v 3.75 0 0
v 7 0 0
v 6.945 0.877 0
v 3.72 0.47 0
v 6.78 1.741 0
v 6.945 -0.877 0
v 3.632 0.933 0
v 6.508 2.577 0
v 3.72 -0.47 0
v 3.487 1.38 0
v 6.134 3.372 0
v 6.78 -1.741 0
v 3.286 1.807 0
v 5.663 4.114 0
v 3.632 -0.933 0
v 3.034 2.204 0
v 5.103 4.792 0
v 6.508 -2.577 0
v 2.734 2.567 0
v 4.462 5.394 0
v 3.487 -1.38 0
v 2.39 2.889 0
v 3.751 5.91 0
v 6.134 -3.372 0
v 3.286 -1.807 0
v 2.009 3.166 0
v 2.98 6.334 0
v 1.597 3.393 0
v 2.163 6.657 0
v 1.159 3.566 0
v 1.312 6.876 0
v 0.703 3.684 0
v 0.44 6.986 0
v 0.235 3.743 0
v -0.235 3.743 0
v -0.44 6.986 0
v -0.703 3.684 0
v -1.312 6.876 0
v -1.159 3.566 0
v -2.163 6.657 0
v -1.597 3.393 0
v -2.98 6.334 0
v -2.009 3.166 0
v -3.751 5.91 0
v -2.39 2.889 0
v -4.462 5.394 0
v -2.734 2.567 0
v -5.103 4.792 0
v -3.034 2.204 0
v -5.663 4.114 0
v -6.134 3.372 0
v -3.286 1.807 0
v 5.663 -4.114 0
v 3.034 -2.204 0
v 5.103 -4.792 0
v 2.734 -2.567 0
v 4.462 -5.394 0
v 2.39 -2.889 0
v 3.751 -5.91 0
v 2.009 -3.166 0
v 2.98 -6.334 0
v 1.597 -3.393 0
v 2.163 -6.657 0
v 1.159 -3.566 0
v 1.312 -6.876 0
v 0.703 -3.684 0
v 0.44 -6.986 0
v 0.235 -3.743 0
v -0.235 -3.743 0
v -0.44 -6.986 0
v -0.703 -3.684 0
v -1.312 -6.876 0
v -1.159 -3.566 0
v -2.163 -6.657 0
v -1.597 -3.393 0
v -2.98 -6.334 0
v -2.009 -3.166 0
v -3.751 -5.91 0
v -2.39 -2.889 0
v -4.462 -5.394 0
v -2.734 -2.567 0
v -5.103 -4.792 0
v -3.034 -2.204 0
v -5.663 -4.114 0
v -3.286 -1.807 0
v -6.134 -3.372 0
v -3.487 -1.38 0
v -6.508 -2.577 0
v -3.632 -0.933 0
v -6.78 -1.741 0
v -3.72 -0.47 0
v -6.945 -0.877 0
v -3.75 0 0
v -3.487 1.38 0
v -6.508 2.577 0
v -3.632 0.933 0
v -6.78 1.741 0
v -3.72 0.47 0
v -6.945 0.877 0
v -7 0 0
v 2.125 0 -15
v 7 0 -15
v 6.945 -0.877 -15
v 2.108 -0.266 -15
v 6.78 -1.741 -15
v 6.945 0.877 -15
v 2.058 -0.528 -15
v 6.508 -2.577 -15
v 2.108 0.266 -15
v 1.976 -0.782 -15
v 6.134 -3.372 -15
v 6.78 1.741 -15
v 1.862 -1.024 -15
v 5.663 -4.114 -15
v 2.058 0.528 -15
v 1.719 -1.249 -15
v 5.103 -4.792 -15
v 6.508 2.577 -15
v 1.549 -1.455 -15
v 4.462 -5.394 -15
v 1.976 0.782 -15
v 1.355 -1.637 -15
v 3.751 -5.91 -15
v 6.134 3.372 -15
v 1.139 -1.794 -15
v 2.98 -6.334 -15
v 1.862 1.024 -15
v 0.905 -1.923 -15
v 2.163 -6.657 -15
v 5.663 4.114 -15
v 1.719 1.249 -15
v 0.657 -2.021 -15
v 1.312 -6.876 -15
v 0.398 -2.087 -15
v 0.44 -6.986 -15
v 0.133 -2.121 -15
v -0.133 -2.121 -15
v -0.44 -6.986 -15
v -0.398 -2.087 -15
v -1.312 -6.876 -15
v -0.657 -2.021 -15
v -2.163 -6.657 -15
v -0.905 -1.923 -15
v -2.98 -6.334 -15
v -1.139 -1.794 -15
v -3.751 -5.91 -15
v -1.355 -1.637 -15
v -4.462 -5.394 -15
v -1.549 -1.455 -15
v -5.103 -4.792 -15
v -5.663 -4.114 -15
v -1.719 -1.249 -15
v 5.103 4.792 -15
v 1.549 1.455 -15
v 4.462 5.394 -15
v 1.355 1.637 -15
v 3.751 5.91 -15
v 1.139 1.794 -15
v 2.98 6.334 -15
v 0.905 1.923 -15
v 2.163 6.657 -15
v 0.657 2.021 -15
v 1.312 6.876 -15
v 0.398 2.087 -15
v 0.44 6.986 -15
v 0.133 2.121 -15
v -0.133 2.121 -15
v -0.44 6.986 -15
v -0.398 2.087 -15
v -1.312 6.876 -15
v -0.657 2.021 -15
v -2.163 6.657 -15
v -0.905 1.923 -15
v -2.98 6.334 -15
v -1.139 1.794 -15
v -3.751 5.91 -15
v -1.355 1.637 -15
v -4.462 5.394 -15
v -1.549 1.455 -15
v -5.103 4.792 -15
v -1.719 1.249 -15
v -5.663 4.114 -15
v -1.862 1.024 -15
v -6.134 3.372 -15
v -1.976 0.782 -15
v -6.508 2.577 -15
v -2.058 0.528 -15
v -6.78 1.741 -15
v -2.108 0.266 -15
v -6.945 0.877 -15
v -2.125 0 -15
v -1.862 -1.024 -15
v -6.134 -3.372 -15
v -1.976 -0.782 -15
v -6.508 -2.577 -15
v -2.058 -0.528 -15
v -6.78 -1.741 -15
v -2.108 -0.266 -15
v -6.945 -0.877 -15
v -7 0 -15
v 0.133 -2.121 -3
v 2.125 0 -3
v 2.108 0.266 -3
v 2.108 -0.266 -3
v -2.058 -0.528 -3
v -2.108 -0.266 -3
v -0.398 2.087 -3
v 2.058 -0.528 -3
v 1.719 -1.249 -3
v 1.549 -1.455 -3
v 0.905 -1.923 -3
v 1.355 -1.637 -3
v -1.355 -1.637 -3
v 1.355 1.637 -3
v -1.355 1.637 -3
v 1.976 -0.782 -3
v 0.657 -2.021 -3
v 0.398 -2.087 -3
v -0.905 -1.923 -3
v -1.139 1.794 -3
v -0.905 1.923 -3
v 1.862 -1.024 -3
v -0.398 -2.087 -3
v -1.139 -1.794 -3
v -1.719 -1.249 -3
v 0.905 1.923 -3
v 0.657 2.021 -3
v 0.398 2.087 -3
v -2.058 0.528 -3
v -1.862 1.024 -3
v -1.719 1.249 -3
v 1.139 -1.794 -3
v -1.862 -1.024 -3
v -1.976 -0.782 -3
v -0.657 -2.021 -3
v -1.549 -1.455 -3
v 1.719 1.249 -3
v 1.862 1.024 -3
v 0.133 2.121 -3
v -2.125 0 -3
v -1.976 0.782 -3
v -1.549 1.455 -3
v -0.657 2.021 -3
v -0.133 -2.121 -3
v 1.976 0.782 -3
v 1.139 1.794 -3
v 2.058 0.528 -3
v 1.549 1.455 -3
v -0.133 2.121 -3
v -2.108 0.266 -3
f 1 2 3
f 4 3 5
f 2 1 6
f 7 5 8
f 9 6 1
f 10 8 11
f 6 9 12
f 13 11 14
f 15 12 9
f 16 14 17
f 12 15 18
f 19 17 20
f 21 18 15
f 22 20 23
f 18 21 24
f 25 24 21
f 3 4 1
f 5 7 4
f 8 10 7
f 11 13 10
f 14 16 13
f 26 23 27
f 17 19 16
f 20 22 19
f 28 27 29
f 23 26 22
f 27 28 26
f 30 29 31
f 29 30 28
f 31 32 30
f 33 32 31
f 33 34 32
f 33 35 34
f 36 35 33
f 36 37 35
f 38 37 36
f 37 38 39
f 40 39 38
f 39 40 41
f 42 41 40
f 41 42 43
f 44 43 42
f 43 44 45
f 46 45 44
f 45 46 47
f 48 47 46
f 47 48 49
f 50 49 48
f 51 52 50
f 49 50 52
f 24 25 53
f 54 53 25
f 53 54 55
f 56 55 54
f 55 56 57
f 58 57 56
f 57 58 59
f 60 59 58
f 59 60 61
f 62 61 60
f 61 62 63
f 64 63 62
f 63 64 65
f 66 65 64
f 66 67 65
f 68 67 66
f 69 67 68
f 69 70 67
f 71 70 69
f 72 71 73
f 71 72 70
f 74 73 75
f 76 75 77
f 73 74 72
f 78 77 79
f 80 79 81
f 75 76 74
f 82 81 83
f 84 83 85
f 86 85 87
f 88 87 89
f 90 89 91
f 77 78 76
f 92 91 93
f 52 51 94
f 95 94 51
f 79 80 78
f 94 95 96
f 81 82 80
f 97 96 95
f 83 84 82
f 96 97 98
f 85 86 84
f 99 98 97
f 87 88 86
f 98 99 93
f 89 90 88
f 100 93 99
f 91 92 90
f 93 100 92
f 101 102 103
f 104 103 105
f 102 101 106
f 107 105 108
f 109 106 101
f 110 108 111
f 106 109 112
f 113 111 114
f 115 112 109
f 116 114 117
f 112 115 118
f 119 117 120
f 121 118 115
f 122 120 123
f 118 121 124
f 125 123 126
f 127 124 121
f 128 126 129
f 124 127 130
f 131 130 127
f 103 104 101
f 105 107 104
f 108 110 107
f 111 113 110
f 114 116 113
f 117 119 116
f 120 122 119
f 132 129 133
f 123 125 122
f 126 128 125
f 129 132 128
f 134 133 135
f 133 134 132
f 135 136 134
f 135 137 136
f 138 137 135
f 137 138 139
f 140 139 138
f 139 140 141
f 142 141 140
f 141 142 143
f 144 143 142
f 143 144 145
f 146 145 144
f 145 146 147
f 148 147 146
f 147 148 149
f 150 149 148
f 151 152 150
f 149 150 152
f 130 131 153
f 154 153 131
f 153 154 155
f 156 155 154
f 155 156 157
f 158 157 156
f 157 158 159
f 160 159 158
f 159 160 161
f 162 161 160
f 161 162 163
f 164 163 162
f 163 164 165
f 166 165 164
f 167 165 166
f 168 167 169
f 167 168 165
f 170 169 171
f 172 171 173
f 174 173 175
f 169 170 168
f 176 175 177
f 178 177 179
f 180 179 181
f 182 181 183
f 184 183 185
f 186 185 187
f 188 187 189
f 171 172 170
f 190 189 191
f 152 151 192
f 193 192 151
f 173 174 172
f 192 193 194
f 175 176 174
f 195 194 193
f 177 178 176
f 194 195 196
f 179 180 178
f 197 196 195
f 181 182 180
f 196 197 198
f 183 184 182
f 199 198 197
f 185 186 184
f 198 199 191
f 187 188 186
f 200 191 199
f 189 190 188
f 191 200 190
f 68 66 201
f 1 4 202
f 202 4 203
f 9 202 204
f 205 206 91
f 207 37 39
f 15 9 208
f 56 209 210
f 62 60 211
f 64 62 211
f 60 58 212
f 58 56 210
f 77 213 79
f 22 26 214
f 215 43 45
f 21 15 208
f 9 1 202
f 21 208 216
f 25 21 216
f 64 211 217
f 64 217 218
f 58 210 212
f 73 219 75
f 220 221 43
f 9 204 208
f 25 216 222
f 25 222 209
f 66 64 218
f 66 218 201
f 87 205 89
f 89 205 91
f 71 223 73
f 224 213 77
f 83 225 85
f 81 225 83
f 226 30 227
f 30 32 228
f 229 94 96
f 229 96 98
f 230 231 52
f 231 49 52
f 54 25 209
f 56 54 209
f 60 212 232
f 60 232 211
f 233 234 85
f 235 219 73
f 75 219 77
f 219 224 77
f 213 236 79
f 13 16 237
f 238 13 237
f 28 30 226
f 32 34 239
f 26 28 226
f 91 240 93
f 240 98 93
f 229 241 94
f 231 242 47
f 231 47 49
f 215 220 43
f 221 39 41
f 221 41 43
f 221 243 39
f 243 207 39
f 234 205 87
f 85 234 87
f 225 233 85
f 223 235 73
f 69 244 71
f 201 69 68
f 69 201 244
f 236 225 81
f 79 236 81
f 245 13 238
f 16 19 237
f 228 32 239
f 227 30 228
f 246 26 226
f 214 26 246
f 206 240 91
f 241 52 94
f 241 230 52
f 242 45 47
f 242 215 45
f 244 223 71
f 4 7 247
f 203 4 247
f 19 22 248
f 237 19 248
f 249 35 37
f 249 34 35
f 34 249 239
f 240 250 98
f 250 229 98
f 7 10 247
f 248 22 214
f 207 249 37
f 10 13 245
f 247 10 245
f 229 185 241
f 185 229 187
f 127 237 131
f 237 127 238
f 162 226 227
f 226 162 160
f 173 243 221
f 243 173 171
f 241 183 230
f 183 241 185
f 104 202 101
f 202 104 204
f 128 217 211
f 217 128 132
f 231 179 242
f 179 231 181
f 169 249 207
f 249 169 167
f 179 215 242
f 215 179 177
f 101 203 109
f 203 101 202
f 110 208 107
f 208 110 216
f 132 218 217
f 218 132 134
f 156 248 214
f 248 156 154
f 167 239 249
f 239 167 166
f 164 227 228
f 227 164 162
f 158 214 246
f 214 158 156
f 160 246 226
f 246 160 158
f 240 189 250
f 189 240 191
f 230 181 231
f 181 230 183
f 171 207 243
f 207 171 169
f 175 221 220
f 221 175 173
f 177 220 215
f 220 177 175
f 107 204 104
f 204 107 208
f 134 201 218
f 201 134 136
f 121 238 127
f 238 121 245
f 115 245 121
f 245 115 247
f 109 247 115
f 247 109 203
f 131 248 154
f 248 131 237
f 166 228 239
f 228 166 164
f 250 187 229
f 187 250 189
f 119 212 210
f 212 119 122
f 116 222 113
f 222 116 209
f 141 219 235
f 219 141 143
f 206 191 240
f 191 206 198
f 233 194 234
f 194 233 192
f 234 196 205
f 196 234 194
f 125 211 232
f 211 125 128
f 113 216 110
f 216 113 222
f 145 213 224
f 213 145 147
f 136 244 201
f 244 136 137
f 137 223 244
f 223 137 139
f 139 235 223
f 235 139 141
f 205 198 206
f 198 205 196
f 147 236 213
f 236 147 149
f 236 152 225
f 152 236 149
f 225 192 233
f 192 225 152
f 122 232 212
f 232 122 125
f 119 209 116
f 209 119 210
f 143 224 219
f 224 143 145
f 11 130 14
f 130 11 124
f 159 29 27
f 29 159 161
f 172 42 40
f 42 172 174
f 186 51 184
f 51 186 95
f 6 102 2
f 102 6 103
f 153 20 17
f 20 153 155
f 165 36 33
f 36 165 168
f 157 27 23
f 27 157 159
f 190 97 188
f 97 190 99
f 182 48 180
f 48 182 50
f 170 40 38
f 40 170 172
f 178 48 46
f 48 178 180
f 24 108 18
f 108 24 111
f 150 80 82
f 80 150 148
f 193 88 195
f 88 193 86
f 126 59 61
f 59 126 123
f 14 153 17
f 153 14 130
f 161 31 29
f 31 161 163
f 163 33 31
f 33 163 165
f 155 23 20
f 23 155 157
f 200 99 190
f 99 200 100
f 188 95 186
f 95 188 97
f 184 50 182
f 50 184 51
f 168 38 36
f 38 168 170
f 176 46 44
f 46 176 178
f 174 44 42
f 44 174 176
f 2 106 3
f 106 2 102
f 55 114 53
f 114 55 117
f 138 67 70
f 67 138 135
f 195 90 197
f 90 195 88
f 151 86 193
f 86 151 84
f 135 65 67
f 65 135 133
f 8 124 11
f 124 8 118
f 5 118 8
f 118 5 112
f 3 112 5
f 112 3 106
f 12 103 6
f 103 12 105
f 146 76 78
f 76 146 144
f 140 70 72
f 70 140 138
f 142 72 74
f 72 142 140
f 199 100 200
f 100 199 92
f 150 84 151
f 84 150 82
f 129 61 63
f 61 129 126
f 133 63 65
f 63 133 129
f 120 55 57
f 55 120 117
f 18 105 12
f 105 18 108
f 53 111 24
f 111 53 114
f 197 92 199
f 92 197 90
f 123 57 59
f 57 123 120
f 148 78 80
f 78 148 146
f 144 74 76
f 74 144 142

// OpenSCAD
$fn = 50;


difference() {
	union() {
		translate(v = [0, 0, -15.0000000000]) {
			cylinder(h = 15, r = 7.0000000000);
		}
		cylinder(h = 0, r = 17.0000000000);
	}
	union() {
		translate(v = [0, 0, 0]) {
			rotate(a = [0, 0, 0]) {
				difference() {
					union() {
						#translate(v = [0, 0, -15.0000000000]) {
							cylinder(h = 15, r = 2.0000000000);
						}
						#translate(v = [0, 0, -3]) {
							cylinder(h = 3, r1 = 2.1250000000, r2 = 3.7500000000);
						}
						#translate(v = [0, 0, -15.0000000000]) {
							cylinder(h = 15, r = 2.1250000000);
						}
						#translate(v = [0, 0, -15.0000000000]) {
							cylinder(h = 15, r = 2.0000000000);
						}
					}
					union();
				}
			}
		}
	}
}
